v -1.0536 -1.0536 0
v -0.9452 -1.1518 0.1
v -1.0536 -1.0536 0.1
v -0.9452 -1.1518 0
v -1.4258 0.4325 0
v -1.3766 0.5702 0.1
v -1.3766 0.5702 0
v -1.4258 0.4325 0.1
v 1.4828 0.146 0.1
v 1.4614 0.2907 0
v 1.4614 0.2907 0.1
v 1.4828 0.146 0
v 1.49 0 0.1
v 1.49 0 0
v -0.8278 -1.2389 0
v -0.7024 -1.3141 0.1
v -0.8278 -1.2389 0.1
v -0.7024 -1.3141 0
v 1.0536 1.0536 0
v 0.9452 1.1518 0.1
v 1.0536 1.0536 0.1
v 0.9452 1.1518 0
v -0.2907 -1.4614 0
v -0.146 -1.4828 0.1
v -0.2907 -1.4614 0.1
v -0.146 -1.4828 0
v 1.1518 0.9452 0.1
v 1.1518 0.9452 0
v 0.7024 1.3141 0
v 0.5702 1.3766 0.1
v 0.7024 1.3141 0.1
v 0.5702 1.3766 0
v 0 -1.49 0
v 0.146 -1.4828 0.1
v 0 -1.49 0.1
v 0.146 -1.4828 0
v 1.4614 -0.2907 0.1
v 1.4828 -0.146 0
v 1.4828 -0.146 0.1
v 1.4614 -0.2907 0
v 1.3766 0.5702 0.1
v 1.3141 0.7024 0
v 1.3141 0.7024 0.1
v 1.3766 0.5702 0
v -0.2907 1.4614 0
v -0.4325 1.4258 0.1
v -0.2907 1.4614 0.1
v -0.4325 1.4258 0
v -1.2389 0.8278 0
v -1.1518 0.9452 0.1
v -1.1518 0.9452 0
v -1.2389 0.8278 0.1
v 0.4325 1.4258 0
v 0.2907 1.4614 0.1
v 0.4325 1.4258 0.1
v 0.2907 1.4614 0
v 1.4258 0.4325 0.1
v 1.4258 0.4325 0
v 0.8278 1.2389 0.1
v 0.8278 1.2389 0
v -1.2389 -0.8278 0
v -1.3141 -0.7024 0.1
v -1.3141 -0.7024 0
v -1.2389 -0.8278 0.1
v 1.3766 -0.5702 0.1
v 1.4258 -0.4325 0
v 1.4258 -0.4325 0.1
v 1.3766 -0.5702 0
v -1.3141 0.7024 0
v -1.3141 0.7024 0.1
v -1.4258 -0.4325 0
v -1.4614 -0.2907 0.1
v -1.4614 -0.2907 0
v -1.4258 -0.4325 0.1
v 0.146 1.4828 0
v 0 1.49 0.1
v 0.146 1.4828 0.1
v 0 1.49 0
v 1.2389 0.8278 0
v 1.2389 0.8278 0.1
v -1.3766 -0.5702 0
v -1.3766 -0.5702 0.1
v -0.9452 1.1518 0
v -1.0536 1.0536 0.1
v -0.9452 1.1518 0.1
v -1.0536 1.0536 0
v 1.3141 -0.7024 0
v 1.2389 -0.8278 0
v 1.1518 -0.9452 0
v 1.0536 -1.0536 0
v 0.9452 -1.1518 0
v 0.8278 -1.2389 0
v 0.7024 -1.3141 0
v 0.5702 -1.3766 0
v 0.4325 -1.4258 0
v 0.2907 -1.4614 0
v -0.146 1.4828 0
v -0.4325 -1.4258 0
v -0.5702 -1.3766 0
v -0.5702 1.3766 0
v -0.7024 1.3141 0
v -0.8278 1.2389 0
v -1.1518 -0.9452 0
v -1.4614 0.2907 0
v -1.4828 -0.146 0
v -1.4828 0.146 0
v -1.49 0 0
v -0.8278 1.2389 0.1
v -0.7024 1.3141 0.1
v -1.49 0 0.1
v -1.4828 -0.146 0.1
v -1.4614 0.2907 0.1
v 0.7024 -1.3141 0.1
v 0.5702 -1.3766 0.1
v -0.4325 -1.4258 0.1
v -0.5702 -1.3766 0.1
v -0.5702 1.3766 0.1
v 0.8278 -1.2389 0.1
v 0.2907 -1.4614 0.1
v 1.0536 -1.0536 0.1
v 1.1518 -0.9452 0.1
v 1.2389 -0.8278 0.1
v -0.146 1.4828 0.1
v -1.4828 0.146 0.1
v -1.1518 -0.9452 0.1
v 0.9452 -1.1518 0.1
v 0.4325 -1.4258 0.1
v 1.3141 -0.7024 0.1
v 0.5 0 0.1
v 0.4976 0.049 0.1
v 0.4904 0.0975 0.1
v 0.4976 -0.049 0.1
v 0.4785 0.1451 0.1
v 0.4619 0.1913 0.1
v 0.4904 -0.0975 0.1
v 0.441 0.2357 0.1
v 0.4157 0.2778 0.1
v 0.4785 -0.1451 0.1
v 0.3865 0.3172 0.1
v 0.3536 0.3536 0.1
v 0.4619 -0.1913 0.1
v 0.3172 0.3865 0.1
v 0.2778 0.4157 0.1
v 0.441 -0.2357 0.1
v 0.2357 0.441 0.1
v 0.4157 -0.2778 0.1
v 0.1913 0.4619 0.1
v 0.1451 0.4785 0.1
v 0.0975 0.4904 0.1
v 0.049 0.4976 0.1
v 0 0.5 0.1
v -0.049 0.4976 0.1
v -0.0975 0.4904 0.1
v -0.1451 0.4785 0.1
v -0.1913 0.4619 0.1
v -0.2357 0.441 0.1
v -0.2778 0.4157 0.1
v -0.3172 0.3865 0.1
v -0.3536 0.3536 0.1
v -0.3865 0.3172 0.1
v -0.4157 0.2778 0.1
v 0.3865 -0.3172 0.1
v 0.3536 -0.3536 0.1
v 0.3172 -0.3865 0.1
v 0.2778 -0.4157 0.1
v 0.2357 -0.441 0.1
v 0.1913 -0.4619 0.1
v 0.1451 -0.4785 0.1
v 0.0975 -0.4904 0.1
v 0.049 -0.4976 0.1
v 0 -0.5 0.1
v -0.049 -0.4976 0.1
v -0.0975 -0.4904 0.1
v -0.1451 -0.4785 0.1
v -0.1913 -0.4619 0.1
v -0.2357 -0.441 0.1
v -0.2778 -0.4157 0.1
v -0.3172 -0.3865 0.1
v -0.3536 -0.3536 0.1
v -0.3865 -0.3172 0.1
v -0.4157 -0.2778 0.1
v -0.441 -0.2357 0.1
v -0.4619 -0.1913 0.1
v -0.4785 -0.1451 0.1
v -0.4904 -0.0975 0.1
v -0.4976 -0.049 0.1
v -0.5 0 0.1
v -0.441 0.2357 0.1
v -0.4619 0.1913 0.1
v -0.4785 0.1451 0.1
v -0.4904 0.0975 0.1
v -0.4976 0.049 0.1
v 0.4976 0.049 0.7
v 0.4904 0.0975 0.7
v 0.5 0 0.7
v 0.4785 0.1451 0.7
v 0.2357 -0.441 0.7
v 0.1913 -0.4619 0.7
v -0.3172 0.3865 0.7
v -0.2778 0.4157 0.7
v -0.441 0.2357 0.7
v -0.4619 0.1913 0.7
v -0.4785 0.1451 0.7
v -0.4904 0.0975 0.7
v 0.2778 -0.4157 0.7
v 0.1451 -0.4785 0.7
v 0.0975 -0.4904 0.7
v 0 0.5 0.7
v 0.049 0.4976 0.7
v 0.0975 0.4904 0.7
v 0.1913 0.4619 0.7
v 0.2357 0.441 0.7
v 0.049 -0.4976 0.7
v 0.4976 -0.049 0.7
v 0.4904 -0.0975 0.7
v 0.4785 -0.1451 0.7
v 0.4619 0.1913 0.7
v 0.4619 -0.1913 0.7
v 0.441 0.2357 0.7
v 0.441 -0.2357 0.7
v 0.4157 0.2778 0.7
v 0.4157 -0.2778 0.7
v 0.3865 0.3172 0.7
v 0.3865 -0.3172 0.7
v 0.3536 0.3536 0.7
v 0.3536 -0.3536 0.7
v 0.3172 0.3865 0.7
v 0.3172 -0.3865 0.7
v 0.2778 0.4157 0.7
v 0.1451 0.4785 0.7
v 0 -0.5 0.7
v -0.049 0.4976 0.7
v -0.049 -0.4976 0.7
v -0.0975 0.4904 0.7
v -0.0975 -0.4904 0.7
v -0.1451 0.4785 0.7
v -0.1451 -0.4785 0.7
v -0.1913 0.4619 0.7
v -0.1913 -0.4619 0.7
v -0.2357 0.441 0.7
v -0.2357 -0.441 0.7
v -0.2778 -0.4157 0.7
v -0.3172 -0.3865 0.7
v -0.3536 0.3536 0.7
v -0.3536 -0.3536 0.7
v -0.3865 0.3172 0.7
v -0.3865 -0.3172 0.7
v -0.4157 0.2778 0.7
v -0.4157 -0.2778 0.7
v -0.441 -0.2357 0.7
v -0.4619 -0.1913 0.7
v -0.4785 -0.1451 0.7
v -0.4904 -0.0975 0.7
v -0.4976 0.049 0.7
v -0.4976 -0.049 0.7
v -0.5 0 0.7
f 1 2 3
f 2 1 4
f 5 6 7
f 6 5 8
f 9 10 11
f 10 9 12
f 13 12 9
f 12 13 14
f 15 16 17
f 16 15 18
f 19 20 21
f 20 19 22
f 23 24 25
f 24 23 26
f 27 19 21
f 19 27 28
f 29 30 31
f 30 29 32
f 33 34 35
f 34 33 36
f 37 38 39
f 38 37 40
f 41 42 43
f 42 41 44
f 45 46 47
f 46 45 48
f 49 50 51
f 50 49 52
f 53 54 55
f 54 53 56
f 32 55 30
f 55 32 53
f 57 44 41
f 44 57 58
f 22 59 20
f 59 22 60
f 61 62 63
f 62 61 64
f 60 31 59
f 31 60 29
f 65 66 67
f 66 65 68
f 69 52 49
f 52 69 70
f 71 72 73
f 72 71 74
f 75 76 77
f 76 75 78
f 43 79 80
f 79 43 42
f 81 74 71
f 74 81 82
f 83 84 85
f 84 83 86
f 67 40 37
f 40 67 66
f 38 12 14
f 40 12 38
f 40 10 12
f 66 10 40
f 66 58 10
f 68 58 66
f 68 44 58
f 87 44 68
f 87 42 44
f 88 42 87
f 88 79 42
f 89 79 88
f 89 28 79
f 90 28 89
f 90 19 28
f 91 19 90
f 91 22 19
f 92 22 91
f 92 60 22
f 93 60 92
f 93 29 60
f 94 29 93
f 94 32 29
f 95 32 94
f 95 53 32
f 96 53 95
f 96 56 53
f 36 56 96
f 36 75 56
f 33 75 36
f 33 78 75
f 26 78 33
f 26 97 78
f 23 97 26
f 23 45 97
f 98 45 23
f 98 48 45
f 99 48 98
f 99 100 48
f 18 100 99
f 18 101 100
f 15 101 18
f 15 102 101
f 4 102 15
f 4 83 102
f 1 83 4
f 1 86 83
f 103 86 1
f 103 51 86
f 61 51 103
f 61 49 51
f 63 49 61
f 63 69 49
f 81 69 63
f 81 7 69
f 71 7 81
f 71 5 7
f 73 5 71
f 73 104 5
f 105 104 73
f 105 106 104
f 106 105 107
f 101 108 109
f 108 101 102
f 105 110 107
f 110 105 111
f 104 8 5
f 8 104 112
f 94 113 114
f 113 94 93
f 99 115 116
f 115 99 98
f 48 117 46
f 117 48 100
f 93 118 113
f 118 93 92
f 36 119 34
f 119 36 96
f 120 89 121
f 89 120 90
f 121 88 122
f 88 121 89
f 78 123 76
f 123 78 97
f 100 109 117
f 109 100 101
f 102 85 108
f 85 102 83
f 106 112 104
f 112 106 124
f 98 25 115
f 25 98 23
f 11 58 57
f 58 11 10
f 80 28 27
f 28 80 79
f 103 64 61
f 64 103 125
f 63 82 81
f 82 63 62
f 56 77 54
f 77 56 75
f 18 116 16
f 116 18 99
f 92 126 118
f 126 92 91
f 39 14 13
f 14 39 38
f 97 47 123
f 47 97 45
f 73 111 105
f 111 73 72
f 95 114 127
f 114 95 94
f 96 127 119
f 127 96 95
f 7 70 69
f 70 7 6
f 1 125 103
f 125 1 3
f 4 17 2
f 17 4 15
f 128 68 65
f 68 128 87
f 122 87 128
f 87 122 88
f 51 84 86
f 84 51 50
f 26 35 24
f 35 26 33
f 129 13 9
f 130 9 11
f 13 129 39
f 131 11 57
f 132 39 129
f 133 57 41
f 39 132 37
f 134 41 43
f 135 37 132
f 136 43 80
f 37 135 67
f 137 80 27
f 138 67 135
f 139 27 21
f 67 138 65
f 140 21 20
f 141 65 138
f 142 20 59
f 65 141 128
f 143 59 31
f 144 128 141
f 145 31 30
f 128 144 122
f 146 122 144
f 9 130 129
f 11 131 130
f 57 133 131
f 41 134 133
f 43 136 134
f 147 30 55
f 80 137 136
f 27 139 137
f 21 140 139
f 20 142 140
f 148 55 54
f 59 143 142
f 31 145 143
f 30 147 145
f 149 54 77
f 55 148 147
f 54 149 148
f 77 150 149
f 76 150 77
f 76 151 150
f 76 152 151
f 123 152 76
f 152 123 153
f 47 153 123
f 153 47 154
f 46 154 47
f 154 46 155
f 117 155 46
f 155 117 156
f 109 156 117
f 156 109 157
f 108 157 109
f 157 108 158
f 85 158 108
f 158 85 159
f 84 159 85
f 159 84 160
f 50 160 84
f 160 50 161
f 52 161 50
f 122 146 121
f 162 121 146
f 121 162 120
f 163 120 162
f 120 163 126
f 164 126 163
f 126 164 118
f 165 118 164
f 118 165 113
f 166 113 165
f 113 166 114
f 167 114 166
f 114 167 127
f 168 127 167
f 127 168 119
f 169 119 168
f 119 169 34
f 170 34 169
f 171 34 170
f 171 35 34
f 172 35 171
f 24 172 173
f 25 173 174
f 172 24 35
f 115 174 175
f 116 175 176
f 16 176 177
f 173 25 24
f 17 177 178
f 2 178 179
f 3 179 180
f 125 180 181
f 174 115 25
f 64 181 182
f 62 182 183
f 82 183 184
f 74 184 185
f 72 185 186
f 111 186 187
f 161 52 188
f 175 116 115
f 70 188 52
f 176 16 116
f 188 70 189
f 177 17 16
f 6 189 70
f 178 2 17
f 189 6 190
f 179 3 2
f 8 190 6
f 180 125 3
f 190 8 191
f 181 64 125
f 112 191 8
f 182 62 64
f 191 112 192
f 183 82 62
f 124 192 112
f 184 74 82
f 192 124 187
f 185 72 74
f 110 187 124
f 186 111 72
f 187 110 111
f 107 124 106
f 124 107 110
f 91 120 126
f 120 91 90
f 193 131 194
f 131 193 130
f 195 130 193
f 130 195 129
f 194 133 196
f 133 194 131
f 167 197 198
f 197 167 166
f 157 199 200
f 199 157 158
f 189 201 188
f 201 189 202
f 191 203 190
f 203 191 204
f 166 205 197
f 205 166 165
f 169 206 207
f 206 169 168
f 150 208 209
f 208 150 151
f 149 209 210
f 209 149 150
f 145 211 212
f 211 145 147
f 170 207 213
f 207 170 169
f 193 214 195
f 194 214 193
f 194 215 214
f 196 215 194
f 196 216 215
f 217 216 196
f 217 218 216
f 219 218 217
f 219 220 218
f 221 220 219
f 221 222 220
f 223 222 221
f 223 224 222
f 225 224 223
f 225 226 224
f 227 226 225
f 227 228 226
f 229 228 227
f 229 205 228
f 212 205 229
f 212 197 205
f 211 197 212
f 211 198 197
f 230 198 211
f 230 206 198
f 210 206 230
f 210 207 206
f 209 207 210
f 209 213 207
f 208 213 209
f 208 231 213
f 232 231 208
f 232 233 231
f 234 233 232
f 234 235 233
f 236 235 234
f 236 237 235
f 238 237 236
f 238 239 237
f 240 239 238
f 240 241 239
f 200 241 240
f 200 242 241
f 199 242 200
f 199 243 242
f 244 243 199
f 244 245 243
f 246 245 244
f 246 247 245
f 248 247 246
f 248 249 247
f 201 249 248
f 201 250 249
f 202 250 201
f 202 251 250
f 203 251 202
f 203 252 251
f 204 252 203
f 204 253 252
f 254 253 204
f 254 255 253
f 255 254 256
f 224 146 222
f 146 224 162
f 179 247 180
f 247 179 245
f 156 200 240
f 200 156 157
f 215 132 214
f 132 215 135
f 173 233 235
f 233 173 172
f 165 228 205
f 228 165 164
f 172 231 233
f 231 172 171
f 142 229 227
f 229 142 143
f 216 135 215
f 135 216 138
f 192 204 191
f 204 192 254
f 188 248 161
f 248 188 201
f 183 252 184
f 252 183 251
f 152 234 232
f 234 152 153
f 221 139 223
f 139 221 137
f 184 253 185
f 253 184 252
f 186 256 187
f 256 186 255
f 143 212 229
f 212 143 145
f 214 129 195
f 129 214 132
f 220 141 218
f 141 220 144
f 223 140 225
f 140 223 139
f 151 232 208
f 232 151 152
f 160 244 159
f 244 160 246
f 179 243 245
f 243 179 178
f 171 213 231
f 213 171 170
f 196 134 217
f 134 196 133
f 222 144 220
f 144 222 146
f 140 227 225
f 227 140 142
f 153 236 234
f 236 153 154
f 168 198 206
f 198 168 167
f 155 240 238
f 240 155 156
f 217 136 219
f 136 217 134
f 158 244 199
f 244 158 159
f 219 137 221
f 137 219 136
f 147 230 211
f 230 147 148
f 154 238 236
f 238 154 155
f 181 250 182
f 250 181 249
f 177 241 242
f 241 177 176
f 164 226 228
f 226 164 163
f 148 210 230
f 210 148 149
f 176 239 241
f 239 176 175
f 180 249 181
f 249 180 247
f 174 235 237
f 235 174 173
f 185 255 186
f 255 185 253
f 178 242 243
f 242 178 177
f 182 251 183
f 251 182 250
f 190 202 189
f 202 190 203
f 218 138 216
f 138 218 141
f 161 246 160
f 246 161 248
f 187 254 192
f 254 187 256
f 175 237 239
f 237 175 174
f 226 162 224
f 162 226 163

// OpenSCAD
//Cushion supporter
union(){
    //lower plate of the cushion supporter
cylinder(h=0.1, r=1.49, $fn=64);
    //male part of the cushion supporter
    translate([0,0,0.1]){
    cylinder(h=0.6, r=0.5, $fn=64);
    }
}
